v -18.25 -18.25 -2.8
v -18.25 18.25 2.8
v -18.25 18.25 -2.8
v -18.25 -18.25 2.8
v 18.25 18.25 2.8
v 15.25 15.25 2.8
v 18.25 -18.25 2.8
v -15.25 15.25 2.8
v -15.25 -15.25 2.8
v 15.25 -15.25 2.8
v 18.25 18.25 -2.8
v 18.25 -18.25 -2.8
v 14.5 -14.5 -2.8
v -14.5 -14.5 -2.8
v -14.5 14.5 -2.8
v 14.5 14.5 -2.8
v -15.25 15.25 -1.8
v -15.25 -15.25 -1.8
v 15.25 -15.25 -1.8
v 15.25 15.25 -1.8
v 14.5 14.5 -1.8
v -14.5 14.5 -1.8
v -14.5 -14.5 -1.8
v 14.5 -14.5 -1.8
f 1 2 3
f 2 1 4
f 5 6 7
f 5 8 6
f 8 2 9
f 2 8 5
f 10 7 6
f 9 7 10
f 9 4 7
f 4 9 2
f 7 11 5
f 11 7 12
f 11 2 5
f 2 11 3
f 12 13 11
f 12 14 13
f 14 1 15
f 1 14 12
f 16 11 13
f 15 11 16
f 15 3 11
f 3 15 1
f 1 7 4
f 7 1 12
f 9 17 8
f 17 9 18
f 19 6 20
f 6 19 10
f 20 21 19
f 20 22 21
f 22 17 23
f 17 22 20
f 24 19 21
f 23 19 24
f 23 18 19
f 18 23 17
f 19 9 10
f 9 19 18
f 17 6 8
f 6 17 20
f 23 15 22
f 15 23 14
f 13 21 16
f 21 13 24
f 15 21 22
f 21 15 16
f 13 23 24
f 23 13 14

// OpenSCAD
deviceDim=30+0.5; //mm
PCBThickness=1.6; //mm
//pinHeight=12;//fully extended, mm above pcb
pinHeight=3;//fully extended, mm above pcb
earsHeight=3;//mm, corners extend above pins
wallT=3;//mm, wall thickness
PCBShelfW=0.75;//mm, the pcb sits on this
belowPBC=1;//mm extension below PCB

difference(){
    cube([deviceDim+wallT*2,deviceDim+wallT*2,belowPBC+PCBThickness+pinHeight],center = true);
    translate([0,0,belowPBC]) cube([deviceDim,deviceDim,belowPBC+PCBThickness+pinHeight],center = true);
    cube([deviceDim-2*PCBShelfW,deviceDim-2*PCBShelfW,belowPBC+PCBThickness+pinHeight+1],center = true);
}
